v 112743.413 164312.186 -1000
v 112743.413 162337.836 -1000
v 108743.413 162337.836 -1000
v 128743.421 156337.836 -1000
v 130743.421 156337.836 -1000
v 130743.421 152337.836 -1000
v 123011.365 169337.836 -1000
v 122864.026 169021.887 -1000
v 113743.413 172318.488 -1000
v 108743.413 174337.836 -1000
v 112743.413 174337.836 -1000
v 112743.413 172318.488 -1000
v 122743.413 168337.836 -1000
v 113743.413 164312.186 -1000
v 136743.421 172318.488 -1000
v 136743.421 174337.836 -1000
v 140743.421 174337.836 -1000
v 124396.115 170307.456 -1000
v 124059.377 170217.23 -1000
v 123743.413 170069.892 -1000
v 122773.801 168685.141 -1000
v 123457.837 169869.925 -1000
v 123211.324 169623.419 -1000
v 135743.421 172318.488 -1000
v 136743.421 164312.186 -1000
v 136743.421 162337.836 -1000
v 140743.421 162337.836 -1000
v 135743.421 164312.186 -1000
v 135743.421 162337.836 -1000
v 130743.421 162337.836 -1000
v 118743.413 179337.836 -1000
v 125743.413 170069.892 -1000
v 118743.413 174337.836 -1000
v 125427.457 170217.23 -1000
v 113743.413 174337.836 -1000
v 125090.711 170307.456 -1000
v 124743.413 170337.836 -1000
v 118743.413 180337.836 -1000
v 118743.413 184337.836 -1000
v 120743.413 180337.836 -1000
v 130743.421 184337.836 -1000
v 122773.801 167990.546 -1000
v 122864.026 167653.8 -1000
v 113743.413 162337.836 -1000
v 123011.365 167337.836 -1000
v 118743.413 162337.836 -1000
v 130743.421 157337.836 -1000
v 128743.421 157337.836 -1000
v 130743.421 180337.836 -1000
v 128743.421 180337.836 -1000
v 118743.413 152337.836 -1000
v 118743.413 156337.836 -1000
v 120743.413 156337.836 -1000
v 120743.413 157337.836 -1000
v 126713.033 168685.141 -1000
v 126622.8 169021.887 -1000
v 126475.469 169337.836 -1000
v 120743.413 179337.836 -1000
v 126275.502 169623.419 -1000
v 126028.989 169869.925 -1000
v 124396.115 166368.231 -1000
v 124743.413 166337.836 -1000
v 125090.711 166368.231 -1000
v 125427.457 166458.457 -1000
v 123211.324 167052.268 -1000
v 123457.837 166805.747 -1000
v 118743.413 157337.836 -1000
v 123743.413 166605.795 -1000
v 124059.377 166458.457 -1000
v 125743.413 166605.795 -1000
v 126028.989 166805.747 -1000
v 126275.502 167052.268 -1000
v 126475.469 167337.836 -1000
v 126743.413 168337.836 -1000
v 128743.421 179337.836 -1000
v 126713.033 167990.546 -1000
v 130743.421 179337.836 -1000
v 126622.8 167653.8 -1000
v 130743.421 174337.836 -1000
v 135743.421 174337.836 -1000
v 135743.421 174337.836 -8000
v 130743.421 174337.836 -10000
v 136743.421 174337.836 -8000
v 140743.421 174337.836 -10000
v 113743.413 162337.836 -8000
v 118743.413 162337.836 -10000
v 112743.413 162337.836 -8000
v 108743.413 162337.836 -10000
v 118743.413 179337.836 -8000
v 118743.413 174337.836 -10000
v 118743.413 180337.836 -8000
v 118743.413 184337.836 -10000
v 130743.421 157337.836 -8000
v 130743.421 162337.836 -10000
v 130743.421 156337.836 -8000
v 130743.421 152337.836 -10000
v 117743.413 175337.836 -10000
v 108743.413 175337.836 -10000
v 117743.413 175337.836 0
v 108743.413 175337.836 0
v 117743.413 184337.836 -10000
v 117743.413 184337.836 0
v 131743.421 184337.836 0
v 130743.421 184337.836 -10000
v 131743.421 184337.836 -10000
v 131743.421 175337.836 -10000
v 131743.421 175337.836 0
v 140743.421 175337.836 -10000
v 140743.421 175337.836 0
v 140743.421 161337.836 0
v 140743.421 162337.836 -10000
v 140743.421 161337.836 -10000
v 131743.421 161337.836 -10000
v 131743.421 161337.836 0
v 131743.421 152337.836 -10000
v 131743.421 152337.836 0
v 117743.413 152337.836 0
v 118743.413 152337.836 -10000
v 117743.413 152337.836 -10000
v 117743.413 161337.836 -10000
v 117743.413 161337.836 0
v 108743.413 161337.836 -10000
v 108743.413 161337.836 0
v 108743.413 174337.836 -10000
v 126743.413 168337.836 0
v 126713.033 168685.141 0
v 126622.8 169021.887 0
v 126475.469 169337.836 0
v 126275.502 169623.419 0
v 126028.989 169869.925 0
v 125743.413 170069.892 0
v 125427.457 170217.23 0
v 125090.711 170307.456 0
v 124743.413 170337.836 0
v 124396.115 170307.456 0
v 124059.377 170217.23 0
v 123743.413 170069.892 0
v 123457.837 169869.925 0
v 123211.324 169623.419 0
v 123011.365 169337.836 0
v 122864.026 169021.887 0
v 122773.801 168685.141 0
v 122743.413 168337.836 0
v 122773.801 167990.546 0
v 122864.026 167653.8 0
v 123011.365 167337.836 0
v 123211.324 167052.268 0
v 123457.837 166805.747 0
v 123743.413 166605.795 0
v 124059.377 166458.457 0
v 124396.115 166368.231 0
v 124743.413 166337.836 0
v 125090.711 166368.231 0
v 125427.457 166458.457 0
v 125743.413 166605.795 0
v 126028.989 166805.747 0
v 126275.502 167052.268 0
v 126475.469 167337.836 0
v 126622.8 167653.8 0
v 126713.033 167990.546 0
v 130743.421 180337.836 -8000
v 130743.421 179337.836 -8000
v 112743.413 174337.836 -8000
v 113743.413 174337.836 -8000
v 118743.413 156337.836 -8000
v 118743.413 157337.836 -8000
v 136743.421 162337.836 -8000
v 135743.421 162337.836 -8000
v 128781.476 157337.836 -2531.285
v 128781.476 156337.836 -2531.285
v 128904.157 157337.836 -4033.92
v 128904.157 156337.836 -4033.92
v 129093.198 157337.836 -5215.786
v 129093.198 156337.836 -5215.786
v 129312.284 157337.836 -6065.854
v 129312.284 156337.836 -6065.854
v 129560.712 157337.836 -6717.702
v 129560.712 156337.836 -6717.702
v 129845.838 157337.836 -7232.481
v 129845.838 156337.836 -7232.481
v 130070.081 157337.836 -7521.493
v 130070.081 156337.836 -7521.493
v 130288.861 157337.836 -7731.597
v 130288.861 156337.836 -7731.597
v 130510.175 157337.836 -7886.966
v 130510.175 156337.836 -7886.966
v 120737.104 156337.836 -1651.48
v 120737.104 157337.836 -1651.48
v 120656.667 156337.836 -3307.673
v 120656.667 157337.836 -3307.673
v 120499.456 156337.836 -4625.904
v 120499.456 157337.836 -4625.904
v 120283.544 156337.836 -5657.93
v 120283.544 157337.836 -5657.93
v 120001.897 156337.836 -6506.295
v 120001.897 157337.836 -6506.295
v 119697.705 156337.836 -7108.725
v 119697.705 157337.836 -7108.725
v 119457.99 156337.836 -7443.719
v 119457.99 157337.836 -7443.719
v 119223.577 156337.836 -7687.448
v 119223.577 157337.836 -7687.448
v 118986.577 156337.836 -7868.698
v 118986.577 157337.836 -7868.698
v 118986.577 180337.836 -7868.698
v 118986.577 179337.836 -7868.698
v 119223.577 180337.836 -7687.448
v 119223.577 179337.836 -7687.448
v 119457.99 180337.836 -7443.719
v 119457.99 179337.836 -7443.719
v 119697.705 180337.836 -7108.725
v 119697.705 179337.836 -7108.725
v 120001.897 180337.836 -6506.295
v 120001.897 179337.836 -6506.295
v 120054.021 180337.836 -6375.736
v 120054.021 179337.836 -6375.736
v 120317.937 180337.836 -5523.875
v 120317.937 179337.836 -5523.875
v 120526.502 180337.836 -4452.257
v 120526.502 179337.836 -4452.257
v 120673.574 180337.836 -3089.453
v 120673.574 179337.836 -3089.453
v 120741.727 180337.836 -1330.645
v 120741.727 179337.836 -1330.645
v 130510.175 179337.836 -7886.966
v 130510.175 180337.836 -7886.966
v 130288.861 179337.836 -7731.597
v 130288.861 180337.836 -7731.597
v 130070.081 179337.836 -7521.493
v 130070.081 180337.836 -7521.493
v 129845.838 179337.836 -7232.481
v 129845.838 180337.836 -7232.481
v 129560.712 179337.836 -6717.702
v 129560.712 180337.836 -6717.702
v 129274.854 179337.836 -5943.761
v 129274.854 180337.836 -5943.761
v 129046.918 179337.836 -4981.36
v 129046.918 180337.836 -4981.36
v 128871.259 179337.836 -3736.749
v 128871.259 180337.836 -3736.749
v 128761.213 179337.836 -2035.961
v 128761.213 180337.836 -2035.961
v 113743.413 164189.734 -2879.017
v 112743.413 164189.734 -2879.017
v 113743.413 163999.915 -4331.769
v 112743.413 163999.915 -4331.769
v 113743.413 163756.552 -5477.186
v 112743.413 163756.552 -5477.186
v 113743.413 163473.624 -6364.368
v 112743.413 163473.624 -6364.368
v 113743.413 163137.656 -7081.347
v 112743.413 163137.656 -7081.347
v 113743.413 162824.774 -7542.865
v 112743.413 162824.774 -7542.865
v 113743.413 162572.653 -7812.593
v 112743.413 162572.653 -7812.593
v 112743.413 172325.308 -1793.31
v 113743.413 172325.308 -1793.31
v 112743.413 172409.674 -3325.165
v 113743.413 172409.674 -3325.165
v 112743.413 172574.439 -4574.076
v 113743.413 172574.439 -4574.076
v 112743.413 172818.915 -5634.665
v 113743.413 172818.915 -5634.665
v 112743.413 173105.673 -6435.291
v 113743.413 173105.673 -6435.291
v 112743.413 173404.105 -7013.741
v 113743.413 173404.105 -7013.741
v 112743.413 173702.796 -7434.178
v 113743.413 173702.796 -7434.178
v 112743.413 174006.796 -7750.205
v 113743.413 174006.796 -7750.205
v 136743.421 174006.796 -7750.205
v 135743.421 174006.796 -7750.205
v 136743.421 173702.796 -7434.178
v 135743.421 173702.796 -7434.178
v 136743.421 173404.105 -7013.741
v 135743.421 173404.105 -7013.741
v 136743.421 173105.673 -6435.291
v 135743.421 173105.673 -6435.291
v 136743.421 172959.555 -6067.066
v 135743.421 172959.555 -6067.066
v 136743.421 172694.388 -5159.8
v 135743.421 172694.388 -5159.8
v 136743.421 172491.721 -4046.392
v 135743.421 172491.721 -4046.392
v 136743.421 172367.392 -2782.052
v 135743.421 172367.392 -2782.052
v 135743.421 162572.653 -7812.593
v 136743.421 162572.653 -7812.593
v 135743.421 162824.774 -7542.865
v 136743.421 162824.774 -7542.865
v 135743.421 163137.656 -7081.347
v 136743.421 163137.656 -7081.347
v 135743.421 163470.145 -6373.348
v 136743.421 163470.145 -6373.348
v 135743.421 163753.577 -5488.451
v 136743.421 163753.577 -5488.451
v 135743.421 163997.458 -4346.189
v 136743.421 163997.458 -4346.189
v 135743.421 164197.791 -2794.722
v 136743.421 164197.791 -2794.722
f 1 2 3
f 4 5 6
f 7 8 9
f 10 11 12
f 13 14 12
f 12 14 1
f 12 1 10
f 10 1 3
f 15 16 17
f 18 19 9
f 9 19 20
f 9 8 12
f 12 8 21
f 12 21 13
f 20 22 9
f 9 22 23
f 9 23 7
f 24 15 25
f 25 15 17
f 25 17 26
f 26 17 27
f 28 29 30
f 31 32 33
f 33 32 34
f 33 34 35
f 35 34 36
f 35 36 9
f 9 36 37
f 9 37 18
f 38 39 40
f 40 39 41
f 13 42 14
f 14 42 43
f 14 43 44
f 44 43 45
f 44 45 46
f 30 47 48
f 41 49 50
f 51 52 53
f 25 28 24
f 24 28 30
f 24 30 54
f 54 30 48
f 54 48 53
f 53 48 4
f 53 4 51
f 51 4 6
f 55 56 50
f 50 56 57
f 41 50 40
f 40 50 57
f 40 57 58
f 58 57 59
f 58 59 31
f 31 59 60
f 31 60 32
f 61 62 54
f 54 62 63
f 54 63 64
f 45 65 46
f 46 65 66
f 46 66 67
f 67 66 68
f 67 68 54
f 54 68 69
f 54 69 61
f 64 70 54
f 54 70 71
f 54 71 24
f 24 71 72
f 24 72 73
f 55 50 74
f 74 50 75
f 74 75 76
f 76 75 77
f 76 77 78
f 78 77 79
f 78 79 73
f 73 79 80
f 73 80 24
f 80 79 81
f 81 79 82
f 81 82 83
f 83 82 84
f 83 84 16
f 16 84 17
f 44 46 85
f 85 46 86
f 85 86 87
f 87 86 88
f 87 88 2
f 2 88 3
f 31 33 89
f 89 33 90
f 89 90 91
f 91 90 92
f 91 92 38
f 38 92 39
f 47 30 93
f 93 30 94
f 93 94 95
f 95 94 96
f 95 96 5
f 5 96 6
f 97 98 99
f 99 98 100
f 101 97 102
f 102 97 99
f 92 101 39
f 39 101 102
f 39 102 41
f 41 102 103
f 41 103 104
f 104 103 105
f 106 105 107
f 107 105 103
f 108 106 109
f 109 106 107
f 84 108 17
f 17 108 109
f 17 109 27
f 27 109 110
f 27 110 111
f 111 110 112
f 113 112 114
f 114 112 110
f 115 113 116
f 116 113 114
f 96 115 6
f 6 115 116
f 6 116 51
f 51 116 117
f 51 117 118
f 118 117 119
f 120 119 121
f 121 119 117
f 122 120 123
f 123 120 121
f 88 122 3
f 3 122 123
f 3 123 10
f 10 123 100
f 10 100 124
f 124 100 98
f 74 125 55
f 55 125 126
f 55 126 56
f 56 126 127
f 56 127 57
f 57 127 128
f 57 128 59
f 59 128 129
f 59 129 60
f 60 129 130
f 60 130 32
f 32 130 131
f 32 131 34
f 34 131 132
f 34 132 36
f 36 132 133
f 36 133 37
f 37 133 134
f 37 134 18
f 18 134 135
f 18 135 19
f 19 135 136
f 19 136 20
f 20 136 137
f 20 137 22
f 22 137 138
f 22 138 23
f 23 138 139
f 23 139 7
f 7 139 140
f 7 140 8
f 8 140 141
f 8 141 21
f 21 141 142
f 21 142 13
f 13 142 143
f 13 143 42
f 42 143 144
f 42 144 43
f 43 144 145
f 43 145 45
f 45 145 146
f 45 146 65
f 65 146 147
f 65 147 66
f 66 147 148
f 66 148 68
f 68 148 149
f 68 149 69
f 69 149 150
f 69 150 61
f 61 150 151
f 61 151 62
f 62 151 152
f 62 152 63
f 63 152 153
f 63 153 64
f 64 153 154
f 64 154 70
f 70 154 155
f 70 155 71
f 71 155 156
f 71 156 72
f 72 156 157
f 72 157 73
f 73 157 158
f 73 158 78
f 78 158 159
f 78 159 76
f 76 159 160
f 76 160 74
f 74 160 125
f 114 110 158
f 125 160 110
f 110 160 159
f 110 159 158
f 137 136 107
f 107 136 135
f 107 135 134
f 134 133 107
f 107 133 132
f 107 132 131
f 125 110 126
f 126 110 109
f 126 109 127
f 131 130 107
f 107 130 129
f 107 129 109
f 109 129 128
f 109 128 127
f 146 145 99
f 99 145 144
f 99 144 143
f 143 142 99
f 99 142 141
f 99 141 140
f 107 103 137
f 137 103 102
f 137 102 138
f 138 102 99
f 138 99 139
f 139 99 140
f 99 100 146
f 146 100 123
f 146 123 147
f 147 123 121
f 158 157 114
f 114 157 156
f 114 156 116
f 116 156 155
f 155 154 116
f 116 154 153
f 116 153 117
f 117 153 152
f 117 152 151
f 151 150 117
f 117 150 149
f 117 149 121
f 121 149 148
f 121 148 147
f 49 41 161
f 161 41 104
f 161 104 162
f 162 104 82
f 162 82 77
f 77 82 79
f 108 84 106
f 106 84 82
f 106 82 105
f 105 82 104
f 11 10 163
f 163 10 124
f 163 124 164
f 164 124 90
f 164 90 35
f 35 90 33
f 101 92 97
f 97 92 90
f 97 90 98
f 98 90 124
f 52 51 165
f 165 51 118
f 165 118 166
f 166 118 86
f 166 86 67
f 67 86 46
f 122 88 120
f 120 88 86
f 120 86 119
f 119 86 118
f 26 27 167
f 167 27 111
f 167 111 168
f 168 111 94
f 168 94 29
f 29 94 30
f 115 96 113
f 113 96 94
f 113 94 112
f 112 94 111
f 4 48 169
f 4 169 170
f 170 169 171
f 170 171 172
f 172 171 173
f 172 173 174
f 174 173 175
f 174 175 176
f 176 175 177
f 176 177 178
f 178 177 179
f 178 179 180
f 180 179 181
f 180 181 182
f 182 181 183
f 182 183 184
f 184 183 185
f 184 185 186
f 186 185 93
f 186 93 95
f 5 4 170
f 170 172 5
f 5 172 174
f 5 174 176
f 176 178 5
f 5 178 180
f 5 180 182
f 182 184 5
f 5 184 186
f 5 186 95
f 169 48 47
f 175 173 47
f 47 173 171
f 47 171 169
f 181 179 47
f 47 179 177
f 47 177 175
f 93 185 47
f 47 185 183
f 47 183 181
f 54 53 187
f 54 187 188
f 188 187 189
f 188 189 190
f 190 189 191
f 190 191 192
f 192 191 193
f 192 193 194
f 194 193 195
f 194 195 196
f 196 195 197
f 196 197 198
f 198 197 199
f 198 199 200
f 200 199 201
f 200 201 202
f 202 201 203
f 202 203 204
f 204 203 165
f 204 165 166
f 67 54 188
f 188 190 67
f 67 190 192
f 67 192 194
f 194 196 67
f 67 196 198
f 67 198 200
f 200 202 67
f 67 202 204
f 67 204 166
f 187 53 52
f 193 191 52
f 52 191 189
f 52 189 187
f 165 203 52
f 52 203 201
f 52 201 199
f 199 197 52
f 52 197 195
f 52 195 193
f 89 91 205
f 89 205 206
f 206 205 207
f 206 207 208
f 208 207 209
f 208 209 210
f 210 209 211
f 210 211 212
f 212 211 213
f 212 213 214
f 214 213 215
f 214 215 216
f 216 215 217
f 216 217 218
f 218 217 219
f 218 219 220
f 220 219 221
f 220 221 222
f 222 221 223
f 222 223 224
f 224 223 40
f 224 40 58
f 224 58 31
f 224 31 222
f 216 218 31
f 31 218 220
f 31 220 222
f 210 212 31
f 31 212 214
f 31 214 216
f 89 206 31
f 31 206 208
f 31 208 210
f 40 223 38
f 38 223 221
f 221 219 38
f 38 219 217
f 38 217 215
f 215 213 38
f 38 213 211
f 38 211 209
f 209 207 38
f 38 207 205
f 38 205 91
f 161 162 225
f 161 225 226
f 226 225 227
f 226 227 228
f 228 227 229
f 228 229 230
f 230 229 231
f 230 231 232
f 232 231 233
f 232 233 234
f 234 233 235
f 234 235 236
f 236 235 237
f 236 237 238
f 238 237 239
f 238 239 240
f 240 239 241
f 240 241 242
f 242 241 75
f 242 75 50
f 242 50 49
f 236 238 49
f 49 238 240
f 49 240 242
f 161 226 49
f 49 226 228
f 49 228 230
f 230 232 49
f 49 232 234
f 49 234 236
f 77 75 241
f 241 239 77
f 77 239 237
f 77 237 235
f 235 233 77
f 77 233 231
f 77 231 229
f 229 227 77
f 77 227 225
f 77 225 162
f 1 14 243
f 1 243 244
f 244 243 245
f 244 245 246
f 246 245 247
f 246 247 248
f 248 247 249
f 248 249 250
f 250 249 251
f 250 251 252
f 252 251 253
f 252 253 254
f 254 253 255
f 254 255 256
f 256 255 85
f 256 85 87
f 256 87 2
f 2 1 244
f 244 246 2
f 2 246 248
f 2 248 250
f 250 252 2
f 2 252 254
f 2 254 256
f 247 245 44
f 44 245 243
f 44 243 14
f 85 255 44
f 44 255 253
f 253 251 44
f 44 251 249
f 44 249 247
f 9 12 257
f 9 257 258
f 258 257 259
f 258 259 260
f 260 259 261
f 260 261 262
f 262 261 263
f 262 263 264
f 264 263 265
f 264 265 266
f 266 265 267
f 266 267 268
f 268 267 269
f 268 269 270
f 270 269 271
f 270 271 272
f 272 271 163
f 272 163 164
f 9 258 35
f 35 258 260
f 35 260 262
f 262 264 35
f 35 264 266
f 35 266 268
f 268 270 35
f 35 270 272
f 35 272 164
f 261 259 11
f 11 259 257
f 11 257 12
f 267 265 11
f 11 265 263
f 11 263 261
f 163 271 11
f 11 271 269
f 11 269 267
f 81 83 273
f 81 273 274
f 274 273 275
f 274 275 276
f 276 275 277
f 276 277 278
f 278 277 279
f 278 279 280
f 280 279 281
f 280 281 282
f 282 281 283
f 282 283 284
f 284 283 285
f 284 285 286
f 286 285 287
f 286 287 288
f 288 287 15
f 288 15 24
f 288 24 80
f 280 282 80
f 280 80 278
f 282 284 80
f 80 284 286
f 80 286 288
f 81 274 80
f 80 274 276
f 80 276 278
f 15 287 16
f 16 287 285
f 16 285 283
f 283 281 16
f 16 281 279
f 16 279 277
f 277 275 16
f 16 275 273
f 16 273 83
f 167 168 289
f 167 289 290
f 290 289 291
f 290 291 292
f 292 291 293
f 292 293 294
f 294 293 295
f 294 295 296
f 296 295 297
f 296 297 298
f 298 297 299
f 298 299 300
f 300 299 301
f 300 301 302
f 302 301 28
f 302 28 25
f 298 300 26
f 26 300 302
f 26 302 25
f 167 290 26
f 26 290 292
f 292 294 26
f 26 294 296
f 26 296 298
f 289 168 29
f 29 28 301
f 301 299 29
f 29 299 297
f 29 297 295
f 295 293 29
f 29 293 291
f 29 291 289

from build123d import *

# Parameters (mm, degrees)
CROQUIS1_R                   = 2000
SALIENTE_EXTRUIR1_DEPTH      = 1000
SALIENTE_EXTRUIR2_DEPTH      = 10000
SALIENTE_EXTRUIR3_DEPTH      = 500
SALIENTE_EXTRUIR3_DEPTH_BACK = 500
SALIENTE_EXTRUIR4_DEPTH      = 500
SALIENTE_EXTRUIR4_DEPTH_BACK = 500
SALIENTE_EXTRUIR5_DEPTH      = 500
SALIENTE_EXTRUIR5_DEPTH_BACK = 500
SALIENTE_EXTRUIR6_DEPTH      = 500
SALIENTE_EXTRUIR6_DEPTH_BACK = 500


with BuildPart() as part:
    # Croquis1 → Saliente-Extruir1 (new body)
    with BuildSketch(Plane.XY):
        Polygon((117743.416897498, 161337.836627923), (117743.416897498, 152337.836627923), (131743.416897498, 152337.836627923), (131743.416897498, 161337.836627923), (140743.416897498, 161337.836627923), (140743.416897498, 175337.836627923), (131743.416897498, 175337.836627923), (131743.416897498, 184337.836627923), (117743.416897498, 184337.836627923), (117743.416897498, 175337.836627923), (108743.416897498, 175337.836627923), (108743.416897498, 161337.836627923), align=None)
        with Locations((124743.416897498, 168337.836627923)):
            Circle(CROQUIS1_R, mode=Mode.SUBTRACT)
    extrude(amount=-SALIENTE_EXTRUIR1_DEPTH)

    # Croquis1<6> → Saliente-Extruir2 (add)
    with BuildSketch(Plane.XY):
        Polygon((117743.416897498, 161337.836627923), (117743.416897498, 152337.836627923), (118743.416897498, 152337.836627923), (118743.416897498, 162337.836627923), (108743.416897498, 162337.836627923), (108743.416897498, 161337.836627923), align=None)
        Polygon((130743.416897498, 152337.836627923), (131743.416897498, 152337.836627923), (131743.416897498, 161337.836627923), (140743.416897498, 161337.836627923), (140743.416897498, 162337.836627923), (130743.416897498, 162337.836627923), align=None)
        Polygon((108743.416897498, 174337.836627923), (118743.416897498, 174337.836627923), (118743.416897498, 184337.836627923), (117743.416897498, 184337.836627923), (117743.416897498, 175337.836627923), (108743.416897498, 175337.836627923), align=None)
        Polygon((130743.416897498, 174337.836627923), (140743.416897498, 174337.836627923), (140743.416897498, 175337.836627923), (131743.416897498, 175337.836627923), (131743.416897498, 184337.836627923), (130743.416897498, 184337.836627923), align=None)
    extrude(amount=-SALIENTE_EXTRUIR2_DEPTH)

    # Croquis2 → Saliente-Extruir3 (add, two sides: drawn at the far end of the back side and taken through both)
    with BuildSketch(Plane(origin=(0, 156837.836627923, 0), x_dir=(1, 0, 0), z_dir=(0, 1, 0)).offset(-SALIENTE_EXTRUIR3_DEPTH_BACK)):
        with BuildLine():
            add(Edge.make_bspline(
                [(118743.416897498, 8000), (120739.811138244, 7120.578794783), (120743.416897498, 1000)],
                knots=[0, 0, 0, 0.514460755, 0.514460755, 0.514460755], degree=2))
            Line((118743.416897498, 8000), (118743.416897498, 1000))
            Line((118743.416897498, 1000), (120743.416897498, 1000))
        make_face()
        with BuildLine():
            Line((130743.416897498, 1000), (130743.416897498, 8000))
            add(Edge.make_bspline(
                [(130743.416897498, 8000), (128761.675222051, 7234.348262256), (128743.416897498, 1000)],
                knots=[0, 0, 0, 0.590989184, 0.590989184, 0.590989184], degree=2))
            Line((128743.416897498, 1000), (130743.416897498, 1000))
        make_face()
    extrude(amount=SALIENTE_EXTRUIR3_DEPTH + SALIENTE_EXTRUIR3_DEPTH_BACK)

    # Croquis3 → Saliente-Extruir4 (add, two sides: drawn at the far end of the back side and taken through both)
    with BuildSketch(Plane(origin=(0, 179837.836627923, 0), x_dir=(1, 0, 0), z_dir=(0, 1, 0)).offset(-SALIENTE_EXTRUIR4_DEPTH_BACK)):
        with BuildLine():
            add(Edge.make_bspline(
                [(130743.416897498, 8000), (128761.675222051, 7234.348262256), (128743.416897498, 1000)],
                knots=[0, 0, 0, 1, 1, 1], degree=2))
            Line((128743.416897498, 1000), (130743.416897498, 1000))
            Line((130743.416897498, 1000), (130743.416897498, 8000))
        make_face()
        with BuildLine():
            Line((118743.416897498, 8000), (118743.416897498, 1000))
            Line((118743.416897498, 1000), (120743.416897498, 1000))
            add(Edge.make_bspline(
                [(118743.416897498, 8000), (120739.811138244, 7120.578794783), (120743.416897498, 1000)],
                knots=[0, 0, 0, 1, 1, 1], degree=2))
        make_face()
    extrude(amount=SALIENTE_EXTRUIR4_DEPTH + SALIENTE_EXTRUIR4_DEPTH_BACK)

    # Croquis4 → Saliente-Extruir5 (add, two sides: drawn at the far end of the back side and taken through both)
    with BuildSketch(Plane(origin=(113243.416897498, 0, 0), x_dir=(0, 0, -1), z_dir=(1, 0, 0)).offset(-SALIENTE_EXTRUIR5_DEPTH_BACK)):
        with BuildLine():
            Line((8000, 174337.836627923), (0, 174337.836627923))
            Line((0, 174337.836627923), (0, 172337.836627923))
            add(Edge.make_bspline(
                [(8000, 174337.836627923), (6599.854554041, 172118.74354217), (0, 172337.836627923)],
                knots=[0, 0, 0, 0.64837766, 0.64837766, 0.64837766], degree=2))
        make_face()
        with BuildLine():
            add(Edge.make_bspline(
                [(8000, 162337.836627923), (6698.658965378, 164240.824079883), (0, 164337.836627923)],
                knots=[0, 0, 0, 0.707529781, 0.707529781, 0.707529781], degree=2))
            Line((0, 164337.836627923), (0, 162337.836627923))
            Line((0, 162337.836627923), (8000, 162337.836627923))
        make_face()
    extrude(amount=SALIENTE_EXTRUIR5_DEPTH + SALIENTE_EXTRUIR5_DEPTH_BACK)

    # Croquis5 → Saliente-Extruir6 (add, two sides: drawn at the far end of the back side and taken through both)
    with BuildSketch(Plane(origin=(136243.416897498, 0, 0), x_dir=(0, 0, -1), z_dir=(1, 0, 0)).offset(-SALIENTE_EXTRUIR6_DEPTH_BACK)):
        with BuildLine():
            Line((0, 164337.836627923), (0, 162337.836627923))
            Line((0, 162337.836627923), (8000, 162337.836627923))
            add(Edge.make_bspline(
                [(8000, 162337.836627923), (6698.658965378, 164240.824079882), (0, 164337.836627923)],
                knots=[0, 0, 0, 1, 1, 1], degree=2))
        make_face()
        with BuildLine():
            Line((0, 174337.836627923), (0, 172337.836627923))
            add(Edge.make_bspline(
                [(8000, 174337.836627923), (6599.854554041, 172118.74354217), (0, 172337.836627923)],
                knots=[0, 0, 0, 1, 1, 1], degree=2))
            Line((8000, 174337.836627923), (0, 174337.836627923))
        make_face()
    extrude(amount=SALIENTE_EXTRUIR6_DEPTH + SALIENTE_EXTRUIR6_DEPTH_BACK)


solid = part.part
